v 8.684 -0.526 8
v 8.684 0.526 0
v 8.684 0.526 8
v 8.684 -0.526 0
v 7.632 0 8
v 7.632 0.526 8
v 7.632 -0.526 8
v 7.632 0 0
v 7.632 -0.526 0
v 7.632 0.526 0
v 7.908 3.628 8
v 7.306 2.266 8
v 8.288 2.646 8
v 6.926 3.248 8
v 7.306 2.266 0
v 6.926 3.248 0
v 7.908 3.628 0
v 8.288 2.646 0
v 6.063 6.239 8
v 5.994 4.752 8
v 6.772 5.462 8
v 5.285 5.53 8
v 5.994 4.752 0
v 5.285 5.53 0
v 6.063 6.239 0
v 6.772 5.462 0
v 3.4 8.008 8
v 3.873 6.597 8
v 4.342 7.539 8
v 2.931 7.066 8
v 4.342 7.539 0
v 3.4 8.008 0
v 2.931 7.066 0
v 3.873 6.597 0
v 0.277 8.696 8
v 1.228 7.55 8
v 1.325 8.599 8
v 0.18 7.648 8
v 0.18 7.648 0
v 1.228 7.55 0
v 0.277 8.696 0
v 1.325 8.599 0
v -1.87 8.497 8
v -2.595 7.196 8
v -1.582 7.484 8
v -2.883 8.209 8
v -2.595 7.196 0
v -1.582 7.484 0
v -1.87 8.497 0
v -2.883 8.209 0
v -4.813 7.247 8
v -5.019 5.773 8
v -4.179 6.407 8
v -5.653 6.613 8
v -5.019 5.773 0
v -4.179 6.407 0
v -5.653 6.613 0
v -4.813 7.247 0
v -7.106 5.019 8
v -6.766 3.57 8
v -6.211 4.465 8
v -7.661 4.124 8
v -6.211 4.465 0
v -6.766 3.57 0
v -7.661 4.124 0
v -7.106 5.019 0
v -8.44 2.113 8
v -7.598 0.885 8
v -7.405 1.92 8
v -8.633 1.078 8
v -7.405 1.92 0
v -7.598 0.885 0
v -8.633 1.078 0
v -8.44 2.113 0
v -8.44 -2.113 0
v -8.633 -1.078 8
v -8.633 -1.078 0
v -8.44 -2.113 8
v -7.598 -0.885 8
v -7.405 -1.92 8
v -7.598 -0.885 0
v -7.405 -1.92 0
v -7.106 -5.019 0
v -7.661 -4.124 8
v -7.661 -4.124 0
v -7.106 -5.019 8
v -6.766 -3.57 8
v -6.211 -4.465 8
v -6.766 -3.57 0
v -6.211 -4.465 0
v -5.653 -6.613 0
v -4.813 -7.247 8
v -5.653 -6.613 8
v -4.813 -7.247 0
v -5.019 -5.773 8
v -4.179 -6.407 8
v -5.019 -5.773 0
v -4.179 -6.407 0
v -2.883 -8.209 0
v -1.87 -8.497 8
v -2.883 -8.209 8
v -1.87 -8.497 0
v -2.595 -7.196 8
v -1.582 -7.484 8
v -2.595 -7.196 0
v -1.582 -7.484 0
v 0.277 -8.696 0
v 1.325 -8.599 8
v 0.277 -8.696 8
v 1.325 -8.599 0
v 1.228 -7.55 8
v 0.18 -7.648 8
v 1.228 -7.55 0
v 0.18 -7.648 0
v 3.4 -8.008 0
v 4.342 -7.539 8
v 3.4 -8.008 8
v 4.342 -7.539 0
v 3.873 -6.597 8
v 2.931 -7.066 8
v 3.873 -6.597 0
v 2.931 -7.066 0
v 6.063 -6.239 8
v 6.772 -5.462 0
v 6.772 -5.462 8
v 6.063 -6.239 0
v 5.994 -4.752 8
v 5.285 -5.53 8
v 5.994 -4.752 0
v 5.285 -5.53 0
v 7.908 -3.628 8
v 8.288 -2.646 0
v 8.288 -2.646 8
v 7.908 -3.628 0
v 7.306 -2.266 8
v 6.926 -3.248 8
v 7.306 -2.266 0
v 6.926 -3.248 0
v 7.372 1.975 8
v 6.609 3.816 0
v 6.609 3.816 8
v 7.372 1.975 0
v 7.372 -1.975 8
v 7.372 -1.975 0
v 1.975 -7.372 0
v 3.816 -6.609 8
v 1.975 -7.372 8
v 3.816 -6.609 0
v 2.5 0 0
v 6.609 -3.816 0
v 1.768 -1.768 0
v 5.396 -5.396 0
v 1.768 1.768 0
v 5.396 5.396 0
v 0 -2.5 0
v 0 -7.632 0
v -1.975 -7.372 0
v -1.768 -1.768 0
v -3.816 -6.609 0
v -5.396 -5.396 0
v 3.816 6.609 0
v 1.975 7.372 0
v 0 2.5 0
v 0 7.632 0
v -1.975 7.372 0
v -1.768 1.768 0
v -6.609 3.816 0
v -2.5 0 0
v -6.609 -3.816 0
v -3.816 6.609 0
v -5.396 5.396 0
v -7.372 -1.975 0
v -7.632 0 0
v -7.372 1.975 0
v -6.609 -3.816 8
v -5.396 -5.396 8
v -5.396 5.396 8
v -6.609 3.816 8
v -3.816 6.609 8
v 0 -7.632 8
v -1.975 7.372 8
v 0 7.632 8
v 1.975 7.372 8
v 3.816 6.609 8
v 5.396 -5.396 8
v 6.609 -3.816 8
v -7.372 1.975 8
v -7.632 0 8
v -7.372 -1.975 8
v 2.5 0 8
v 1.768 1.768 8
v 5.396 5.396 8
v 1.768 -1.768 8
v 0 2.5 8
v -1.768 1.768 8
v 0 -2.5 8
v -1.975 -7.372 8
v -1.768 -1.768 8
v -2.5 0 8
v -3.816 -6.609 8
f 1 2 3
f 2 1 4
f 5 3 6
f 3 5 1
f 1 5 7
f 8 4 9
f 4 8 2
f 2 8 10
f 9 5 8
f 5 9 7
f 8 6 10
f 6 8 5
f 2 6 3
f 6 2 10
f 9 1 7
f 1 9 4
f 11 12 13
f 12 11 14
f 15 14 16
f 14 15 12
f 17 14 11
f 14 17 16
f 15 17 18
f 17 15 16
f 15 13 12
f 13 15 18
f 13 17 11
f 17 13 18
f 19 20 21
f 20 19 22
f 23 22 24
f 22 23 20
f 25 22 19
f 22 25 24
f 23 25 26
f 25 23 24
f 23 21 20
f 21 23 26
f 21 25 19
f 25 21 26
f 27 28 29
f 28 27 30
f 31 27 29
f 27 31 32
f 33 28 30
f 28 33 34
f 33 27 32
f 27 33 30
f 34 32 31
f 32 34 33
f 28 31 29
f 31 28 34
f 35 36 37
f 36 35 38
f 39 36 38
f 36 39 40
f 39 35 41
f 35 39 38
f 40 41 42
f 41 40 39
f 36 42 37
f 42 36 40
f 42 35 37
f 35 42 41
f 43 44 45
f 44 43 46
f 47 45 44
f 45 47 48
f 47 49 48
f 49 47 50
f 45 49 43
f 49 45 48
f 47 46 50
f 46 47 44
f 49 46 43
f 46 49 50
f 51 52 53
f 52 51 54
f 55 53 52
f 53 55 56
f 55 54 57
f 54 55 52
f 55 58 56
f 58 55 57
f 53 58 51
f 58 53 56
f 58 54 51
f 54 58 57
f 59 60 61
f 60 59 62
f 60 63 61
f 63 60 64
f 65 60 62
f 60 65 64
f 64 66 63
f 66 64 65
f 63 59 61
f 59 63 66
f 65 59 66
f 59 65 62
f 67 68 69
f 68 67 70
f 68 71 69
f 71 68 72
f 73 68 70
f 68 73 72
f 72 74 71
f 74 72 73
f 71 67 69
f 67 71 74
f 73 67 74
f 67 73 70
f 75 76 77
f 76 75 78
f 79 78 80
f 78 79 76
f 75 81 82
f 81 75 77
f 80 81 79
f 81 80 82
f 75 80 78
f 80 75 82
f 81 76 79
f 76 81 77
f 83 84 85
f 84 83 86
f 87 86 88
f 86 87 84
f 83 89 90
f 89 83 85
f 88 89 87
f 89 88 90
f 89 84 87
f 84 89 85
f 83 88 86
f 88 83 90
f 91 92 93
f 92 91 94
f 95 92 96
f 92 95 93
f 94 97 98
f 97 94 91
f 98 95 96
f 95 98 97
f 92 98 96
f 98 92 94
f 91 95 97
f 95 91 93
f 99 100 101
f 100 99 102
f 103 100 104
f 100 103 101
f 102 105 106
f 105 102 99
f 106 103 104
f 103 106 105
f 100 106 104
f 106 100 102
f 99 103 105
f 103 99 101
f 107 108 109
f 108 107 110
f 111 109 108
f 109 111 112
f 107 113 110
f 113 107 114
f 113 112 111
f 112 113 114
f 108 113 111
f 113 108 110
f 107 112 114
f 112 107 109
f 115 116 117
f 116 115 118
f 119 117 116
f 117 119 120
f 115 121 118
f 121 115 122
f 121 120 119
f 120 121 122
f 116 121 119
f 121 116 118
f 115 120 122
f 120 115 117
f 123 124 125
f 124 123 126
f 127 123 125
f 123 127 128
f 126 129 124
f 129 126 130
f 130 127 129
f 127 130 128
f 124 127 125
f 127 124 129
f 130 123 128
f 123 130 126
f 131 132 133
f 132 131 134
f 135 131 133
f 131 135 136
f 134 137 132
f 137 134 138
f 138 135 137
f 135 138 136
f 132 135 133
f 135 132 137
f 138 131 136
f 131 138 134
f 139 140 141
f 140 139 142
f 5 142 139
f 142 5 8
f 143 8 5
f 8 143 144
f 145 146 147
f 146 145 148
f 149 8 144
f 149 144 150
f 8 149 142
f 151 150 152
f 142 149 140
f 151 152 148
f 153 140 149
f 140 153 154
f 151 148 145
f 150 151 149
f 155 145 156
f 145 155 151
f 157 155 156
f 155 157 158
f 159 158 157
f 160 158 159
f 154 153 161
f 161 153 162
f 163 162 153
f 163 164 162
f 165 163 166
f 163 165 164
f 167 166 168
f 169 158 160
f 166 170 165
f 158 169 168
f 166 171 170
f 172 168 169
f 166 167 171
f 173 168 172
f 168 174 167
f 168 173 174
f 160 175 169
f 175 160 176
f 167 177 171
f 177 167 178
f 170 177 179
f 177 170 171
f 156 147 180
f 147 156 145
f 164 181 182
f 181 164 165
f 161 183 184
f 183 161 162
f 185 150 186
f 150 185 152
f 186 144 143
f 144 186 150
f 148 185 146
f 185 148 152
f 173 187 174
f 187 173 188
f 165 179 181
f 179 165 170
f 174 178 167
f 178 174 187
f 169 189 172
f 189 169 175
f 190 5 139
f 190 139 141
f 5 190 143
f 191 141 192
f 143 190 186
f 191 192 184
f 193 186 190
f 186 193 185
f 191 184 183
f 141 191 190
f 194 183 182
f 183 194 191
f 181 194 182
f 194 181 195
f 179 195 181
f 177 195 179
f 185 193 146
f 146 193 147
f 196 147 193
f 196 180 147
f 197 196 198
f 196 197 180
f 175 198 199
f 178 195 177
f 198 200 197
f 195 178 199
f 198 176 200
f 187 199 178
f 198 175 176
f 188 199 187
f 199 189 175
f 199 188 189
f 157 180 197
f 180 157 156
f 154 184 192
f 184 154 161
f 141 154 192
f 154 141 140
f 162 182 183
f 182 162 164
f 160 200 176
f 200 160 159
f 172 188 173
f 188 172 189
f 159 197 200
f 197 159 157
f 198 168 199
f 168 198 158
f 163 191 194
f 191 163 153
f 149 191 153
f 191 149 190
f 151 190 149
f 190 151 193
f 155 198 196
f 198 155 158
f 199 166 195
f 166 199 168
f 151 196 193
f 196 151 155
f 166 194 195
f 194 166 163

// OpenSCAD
// Spur Gear - Generated on 2024-06-08

// Parameters
teeth = 17;
outer_diameter = 20;
bore_diameter = 5;
thickness = 8;
pressure_angle = 20;

// Calculations
gear_module = outer_diameter / (teeth + 2);
addendum = gear_module;
root_diameter = gear_module * (teeth - 2.5);
tooth_width = gear_module;

// Gear model
difference() {
    union() {
        // Base cylinder
        cylinder(d = root_diameter, h = thickness, center = false);
        
        // Teeth
        for (i = [0:teeth-1]) {
            rotate([0, 0, i * 360 / teeth])
                translate([root_diameter/2, -tooth_width/2, 0])
                    cube([addendum, tooth_width, thickness]);
        }
    }
    // Bore hole
    cylinder(d = bore_diameter, h = thickness, center = false);
}
